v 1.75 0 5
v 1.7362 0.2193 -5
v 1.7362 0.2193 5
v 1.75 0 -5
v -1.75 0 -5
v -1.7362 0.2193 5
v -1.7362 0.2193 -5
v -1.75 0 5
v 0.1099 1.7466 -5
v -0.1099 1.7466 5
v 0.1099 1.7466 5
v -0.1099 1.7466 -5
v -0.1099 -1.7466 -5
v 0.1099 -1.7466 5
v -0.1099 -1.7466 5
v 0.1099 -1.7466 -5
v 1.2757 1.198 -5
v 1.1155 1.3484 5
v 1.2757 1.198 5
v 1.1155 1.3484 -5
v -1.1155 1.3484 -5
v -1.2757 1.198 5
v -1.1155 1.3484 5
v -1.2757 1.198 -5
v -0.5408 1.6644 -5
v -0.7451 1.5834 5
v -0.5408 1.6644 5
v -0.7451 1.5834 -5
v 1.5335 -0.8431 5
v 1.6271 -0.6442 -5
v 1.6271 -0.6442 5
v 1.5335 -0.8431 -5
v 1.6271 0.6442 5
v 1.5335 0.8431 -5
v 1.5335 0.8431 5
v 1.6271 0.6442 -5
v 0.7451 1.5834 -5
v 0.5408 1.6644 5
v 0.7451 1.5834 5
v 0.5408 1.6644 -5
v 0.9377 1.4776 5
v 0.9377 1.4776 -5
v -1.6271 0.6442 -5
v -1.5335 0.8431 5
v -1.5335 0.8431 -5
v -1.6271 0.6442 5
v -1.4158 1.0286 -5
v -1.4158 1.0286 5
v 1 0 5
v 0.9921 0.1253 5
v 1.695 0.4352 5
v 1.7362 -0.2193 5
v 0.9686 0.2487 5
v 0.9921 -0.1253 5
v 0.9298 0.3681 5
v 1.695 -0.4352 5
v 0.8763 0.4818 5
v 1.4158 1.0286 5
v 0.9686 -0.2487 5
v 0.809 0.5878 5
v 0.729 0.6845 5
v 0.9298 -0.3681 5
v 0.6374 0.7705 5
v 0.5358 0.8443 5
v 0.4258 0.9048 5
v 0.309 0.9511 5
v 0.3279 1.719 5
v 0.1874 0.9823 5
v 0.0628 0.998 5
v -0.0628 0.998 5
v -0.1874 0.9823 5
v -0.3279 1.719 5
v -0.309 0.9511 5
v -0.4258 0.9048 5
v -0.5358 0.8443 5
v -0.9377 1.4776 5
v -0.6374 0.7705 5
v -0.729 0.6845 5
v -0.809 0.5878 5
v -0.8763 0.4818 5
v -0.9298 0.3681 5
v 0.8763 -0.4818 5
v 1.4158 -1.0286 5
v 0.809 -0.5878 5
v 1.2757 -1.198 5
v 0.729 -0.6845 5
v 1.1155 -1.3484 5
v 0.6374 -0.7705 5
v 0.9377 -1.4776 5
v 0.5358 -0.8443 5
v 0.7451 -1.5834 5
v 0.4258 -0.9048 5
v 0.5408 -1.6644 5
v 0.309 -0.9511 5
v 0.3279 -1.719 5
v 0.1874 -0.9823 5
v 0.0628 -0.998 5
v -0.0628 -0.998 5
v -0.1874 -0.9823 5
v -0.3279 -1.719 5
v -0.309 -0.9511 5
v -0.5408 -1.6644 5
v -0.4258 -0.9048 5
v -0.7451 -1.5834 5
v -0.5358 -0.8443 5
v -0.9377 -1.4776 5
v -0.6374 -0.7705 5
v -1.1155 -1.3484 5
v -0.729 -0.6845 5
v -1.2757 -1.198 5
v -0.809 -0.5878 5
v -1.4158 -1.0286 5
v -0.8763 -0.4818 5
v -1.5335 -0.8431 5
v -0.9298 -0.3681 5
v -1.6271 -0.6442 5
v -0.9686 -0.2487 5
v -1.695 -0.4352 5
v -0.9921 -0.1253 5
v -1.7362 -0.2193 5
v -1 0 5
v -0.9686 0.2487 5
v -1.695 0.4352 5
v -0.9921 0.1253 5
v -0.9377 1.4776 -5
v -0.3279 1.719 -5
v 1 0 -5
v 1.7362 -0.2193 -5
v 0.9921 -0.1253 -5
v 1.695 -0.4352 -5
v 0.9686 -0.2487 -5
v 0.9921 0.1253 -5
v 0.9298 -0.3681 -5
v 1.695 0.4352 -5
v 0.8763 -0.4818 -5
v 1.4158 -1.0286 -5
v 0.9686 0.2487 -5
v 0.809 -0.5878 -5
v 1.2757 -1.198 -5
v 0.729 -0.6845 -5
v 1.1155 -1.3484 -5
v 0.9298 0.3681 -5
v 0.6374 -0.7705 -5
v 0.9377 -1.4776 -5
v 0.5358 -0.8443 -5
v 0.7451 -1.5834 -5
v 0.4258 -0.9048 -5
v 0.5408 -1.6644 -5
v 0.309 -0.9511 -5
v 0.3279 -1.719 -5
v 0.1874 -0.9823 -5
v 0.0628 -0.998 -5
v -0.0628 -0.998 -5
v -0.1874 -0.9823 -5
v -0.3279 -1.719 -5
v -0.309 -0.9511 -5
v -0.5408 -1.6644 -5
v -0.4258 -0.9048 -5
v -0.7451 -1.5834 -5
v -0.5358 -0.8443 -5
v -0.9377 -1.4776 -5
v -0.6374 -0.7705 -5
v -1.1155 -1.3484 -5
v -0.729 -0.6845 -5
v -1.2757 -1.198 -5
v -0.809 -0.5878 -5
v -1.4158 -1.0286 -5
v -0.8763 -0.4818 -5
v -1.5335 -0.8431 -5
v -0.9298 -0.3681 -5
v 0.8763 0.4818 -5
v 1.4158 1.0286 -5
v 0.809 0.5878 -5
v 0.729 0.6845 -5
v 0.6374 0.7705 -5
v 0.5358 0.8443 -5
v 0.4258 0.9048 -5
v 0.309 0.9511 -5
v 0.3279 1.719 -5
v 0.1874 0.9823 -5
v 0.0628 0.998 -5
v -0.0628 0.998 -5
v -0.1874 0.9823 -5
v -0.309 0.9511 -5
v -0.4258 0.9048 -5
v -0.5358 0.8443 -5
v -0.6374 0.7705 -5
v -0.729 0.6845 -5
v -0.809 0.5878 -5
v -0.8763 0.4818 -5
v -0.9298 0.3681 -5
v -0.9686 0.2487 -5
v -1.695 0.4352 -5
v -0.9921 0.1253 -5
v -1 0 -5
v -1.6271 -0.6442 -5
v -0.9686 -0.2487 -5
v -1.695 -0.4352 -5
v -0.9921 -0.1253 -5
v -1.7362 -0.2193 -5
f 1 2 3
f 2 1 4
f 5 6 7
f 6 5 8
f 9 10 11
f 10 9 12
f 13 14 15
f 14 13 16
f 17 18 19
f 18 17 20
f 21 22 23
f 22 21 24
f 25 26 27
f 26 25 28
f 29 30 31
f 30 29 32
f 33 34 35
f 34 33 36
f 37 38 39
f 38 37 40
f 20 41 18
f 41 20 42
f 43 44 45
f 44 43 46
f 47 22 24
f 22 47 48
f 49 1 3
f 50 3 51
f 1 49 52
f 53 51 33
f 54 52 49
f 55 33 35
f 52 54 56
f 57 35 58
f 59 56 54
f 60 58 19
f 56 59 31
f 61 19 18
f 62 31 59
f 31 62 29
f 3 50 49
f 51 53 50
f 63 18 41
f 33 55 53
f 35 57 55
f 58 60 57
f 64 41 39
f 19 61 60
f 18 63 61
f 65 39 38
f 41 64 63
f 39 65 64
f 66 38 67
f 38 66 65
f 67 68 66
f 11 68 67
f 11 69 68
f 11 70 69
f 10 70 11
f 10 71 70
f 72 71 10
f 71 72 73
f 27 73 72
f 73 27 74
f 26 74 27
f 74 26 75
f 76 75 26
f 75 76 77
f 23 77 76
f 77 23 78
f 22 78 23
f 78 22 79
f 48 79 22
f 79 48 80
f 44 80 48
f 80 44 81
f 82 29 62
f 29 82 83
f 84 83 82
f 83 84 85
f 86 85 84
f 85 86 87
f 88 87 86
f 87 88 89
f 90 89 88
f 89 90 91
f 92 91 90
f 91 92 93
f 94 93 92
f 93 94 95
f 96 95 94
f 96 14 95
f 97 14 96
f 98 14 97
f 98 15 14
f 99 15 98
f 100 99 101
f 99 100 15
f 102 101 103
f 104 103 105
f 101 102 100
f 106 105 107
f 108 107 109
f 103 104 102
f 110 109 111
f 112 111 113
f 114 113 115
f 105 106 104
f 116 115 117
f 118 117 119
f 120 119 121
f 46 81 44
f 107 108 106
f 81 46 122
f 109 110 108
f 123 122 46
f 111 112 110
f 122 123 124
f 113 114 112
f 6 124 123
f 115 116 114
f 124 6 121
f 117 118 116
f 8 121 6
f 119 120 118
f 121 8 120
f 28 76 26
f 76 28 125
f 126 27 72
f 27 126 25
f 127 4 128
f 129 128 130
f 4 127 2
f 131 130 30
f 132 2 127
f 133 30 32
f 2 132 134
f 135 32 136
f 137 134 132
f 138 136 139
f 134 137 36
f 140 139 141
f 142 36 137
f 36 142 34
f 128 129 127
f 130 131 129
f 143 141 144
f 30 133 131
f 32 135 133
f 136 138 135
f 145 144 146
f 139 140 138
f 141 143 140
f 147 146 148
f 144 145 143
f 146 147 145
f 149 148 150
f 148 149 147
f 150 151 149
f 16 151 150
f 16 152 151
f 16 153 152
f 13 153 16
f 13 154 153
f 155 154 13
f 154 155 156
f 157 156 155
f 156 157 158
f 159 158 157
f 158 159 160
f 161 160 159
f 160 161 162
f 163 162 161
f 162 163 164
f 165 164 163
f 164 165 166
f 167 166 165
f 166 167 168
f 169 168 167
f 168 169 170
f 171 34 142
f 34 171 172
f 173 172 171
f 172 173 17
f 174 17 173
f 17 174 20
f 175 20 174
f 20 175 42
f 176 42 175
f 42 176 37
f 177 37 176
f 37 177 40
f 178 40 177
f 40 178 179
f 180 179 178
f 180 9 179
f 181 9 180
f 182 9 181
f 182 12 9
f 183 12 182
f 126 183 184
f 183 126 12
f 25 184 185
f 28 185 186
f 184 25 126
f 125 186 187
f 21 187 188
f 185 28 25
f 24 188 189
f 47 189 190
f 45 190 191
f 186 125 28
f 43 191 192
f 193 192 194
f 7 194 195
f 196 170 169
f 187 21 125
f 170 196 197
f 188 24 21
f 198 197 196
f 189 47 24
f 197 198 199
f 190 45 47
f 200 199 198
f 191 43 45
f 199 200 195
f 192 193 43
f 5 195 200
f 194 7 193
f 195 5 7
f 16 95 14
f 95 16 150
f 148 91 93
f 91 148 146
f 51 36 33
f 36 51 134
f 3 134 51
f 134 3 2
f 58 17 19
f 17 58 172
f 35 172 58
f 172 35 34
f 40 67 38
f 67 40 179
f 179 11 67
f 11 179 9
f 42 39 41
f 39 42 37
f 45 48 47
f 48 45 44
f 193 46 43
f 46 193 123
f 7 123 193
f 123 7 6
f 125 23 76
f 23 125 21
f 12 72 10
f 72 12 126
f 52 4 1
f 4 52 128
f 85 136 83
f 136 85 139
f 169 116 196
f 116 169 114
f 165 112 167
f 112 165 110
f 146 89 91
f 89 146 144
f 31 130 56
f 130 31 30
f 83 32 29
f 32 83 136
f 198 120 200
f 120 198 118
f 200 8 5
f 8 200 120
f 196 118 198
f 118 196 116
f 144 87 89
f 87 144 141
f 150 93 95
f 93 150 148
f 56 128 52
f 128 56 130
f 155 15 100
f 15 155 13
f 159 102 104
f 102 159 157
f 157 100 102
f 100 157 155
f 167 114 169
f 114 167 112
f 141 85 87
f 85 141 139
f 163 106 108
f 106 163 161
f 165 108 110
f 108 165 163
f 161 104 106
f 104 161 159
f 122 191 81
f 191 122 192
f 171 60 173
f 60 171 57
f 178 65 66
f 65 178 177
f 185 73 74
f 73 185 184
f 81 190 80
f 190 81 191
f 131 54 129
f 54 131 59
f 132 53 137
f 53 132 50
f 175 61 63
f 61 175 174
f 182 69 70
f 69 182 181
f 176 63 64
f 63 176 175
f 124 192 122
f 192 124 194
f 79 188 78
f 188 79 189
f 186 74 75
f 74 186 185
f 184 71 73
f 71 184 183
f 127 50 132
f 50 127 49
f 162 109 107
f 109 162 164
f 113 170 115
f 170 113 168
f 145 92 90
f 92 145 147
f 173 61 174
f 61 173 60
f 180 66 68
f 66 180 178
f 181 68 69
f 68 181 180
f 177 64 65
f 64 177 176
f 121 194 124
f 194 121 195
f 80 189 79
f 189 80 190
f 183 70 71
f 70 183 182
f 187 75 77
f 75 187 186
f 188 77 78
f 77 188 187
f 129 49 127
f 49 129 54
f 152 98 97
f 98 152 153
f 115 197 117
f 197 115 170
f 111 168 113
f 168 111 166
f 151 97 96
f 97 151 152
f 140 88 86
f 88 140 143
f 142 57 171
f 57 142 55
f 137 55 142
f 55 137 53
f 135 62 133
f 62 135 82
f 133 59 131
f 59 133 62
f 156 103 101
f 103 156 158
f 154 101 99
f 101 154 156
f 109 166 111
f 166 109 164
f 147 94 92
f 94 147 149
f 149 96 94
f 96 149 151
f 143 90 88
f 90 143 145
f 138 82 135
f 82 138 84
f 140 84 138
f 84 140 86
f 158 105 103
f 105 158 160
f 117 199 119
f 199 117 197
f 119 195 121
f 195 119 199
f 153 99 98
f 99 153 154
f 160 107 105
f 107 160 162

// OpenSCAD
$fn = 50;


difference() {
	union() {
		translate(v = [0, 0, -5.0000000000]) {
			cylinder(h = 10, r = 1.7500000000);
		}
	}
	union() {
		translate(v = [0, 0, -100.0000000000]) {
			cylinder(h = 200, r = 1.0000000000);
		}
	}
}
